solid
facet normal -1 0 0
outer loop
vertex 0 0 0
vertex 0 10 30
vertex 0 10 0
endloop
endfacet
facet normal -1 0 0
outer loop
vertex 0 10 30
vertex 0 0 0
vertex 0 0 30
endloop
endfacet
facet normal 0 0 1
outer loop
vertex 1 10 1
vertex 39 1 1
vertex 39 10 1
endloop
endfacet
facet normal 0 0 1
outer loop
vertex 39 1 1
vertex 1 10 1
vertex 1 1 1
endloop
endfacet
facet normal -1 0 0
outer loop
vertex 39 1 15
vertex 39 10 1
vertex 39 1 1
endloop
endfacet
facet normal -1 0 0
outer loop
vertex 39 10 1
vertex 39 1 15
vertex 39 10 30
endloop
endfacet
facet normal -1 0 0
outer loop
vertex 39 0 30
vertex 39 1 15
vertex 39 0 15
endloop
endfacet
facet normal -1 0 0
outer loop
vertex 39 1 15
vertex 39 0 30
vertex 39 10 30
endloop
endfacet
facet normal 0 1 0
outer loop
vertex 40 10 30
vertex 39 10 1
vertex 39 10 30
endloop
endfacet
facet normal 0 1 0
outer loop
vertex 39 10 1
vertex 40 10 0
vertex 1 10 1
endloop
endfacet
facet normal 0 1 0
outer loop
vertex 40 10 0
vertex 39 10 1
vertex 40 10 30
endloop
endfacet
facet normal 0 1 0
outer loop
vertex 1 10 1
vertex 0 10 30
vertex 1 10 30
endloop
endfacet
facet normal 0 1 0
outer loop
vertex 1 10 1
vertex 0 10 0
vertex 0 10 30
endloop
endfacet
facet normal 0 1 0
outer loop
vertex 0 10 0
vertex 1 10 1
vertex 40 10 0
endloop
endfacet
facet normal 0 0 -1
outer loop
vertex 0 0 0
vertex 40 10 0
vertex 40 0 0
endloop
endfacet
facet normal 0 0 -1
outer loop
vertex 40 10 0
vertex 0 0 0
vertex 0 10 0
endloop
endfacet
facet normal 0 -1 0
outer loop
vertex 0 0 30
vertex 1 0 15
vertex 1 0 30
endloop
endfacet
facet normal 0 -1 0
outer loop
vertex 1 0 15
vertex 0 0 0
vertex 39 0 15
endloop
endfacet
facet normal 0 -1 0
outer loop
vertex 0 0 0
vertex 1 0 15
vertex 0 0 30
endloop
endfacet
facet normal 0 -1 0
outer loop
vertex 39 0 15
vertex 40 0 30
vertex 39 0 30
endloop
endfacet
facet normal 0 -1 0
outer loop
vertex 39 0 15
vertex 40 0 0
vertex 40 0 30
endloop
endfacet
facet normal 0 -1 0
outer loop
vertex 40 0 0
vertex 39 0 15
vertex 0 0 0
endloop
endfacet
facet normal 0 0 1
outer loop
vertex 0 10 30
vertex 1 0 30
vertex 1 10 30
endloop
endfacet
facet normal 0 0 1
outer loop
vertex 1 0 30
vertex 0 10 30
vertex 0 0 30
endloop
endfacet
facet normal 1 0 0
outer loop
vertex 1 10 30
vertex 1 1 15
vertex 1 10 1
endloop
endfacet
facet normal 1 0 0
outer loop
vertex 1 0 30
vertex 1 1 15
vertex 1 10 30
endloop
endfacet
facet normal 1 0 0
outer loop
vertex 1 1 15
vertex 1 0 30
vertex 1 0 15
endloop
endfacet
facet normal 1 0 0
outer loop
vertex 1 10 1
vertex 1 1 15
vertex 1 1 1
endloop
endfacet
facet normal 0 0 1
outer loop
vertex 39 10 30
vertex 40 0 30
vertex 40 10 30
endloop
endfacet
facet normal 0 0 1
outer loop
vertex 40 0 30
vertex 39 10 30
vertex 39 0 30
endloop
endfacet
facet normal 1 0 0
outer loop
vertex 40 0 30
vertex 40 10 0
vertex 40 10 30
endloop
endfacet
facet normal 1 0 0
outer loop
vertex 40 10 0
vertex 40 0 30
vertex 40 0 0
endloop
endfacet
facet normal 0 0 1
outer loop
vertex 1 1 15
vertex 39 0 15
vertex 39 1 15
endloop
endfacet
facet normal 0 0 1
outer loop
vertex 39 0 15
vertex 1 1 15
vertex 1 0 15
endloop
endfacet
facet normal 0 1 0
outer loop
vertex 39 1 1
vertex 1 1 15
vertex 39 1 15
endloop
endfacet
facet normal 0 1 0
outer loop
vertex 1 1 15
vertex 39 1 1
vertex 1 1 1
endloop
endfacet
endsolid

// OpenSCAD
// Super-basic first version, learning openscad...
echo(version=version());

thickness = 1;

base_width = 38 + thickness;
base_depth = 10;

wall_height = 30;

cube([base_width, base_depth, thickness], center=false);

cube([thickness, base_depth, wall_height], center=false);
translate([base_width, 0, 0]) {
    cube([thickness, base_depth, wall_height], center=false);
}

cube([base_width, thickness, wall_height / 2], center=false);

/*
translate([0,0,0]) {
    union() {
        cube(15, center=true);
    }
}

color("green")
    translate([-30, 0, 0])
        linear_extrude(height = 20, scale = 0.2)
            square([20, 10], center = true);


translate([-24,0,0]) {
    union() {
        cube(15, center=true);
        sphere(10);
    }
}

intersection() {
    cube(15, center=true);
    sphere(10);
}

translate([24,0,0]) {
    difference() {
        cube(15, center=true);
        sphere(10);
    }
}
*/
